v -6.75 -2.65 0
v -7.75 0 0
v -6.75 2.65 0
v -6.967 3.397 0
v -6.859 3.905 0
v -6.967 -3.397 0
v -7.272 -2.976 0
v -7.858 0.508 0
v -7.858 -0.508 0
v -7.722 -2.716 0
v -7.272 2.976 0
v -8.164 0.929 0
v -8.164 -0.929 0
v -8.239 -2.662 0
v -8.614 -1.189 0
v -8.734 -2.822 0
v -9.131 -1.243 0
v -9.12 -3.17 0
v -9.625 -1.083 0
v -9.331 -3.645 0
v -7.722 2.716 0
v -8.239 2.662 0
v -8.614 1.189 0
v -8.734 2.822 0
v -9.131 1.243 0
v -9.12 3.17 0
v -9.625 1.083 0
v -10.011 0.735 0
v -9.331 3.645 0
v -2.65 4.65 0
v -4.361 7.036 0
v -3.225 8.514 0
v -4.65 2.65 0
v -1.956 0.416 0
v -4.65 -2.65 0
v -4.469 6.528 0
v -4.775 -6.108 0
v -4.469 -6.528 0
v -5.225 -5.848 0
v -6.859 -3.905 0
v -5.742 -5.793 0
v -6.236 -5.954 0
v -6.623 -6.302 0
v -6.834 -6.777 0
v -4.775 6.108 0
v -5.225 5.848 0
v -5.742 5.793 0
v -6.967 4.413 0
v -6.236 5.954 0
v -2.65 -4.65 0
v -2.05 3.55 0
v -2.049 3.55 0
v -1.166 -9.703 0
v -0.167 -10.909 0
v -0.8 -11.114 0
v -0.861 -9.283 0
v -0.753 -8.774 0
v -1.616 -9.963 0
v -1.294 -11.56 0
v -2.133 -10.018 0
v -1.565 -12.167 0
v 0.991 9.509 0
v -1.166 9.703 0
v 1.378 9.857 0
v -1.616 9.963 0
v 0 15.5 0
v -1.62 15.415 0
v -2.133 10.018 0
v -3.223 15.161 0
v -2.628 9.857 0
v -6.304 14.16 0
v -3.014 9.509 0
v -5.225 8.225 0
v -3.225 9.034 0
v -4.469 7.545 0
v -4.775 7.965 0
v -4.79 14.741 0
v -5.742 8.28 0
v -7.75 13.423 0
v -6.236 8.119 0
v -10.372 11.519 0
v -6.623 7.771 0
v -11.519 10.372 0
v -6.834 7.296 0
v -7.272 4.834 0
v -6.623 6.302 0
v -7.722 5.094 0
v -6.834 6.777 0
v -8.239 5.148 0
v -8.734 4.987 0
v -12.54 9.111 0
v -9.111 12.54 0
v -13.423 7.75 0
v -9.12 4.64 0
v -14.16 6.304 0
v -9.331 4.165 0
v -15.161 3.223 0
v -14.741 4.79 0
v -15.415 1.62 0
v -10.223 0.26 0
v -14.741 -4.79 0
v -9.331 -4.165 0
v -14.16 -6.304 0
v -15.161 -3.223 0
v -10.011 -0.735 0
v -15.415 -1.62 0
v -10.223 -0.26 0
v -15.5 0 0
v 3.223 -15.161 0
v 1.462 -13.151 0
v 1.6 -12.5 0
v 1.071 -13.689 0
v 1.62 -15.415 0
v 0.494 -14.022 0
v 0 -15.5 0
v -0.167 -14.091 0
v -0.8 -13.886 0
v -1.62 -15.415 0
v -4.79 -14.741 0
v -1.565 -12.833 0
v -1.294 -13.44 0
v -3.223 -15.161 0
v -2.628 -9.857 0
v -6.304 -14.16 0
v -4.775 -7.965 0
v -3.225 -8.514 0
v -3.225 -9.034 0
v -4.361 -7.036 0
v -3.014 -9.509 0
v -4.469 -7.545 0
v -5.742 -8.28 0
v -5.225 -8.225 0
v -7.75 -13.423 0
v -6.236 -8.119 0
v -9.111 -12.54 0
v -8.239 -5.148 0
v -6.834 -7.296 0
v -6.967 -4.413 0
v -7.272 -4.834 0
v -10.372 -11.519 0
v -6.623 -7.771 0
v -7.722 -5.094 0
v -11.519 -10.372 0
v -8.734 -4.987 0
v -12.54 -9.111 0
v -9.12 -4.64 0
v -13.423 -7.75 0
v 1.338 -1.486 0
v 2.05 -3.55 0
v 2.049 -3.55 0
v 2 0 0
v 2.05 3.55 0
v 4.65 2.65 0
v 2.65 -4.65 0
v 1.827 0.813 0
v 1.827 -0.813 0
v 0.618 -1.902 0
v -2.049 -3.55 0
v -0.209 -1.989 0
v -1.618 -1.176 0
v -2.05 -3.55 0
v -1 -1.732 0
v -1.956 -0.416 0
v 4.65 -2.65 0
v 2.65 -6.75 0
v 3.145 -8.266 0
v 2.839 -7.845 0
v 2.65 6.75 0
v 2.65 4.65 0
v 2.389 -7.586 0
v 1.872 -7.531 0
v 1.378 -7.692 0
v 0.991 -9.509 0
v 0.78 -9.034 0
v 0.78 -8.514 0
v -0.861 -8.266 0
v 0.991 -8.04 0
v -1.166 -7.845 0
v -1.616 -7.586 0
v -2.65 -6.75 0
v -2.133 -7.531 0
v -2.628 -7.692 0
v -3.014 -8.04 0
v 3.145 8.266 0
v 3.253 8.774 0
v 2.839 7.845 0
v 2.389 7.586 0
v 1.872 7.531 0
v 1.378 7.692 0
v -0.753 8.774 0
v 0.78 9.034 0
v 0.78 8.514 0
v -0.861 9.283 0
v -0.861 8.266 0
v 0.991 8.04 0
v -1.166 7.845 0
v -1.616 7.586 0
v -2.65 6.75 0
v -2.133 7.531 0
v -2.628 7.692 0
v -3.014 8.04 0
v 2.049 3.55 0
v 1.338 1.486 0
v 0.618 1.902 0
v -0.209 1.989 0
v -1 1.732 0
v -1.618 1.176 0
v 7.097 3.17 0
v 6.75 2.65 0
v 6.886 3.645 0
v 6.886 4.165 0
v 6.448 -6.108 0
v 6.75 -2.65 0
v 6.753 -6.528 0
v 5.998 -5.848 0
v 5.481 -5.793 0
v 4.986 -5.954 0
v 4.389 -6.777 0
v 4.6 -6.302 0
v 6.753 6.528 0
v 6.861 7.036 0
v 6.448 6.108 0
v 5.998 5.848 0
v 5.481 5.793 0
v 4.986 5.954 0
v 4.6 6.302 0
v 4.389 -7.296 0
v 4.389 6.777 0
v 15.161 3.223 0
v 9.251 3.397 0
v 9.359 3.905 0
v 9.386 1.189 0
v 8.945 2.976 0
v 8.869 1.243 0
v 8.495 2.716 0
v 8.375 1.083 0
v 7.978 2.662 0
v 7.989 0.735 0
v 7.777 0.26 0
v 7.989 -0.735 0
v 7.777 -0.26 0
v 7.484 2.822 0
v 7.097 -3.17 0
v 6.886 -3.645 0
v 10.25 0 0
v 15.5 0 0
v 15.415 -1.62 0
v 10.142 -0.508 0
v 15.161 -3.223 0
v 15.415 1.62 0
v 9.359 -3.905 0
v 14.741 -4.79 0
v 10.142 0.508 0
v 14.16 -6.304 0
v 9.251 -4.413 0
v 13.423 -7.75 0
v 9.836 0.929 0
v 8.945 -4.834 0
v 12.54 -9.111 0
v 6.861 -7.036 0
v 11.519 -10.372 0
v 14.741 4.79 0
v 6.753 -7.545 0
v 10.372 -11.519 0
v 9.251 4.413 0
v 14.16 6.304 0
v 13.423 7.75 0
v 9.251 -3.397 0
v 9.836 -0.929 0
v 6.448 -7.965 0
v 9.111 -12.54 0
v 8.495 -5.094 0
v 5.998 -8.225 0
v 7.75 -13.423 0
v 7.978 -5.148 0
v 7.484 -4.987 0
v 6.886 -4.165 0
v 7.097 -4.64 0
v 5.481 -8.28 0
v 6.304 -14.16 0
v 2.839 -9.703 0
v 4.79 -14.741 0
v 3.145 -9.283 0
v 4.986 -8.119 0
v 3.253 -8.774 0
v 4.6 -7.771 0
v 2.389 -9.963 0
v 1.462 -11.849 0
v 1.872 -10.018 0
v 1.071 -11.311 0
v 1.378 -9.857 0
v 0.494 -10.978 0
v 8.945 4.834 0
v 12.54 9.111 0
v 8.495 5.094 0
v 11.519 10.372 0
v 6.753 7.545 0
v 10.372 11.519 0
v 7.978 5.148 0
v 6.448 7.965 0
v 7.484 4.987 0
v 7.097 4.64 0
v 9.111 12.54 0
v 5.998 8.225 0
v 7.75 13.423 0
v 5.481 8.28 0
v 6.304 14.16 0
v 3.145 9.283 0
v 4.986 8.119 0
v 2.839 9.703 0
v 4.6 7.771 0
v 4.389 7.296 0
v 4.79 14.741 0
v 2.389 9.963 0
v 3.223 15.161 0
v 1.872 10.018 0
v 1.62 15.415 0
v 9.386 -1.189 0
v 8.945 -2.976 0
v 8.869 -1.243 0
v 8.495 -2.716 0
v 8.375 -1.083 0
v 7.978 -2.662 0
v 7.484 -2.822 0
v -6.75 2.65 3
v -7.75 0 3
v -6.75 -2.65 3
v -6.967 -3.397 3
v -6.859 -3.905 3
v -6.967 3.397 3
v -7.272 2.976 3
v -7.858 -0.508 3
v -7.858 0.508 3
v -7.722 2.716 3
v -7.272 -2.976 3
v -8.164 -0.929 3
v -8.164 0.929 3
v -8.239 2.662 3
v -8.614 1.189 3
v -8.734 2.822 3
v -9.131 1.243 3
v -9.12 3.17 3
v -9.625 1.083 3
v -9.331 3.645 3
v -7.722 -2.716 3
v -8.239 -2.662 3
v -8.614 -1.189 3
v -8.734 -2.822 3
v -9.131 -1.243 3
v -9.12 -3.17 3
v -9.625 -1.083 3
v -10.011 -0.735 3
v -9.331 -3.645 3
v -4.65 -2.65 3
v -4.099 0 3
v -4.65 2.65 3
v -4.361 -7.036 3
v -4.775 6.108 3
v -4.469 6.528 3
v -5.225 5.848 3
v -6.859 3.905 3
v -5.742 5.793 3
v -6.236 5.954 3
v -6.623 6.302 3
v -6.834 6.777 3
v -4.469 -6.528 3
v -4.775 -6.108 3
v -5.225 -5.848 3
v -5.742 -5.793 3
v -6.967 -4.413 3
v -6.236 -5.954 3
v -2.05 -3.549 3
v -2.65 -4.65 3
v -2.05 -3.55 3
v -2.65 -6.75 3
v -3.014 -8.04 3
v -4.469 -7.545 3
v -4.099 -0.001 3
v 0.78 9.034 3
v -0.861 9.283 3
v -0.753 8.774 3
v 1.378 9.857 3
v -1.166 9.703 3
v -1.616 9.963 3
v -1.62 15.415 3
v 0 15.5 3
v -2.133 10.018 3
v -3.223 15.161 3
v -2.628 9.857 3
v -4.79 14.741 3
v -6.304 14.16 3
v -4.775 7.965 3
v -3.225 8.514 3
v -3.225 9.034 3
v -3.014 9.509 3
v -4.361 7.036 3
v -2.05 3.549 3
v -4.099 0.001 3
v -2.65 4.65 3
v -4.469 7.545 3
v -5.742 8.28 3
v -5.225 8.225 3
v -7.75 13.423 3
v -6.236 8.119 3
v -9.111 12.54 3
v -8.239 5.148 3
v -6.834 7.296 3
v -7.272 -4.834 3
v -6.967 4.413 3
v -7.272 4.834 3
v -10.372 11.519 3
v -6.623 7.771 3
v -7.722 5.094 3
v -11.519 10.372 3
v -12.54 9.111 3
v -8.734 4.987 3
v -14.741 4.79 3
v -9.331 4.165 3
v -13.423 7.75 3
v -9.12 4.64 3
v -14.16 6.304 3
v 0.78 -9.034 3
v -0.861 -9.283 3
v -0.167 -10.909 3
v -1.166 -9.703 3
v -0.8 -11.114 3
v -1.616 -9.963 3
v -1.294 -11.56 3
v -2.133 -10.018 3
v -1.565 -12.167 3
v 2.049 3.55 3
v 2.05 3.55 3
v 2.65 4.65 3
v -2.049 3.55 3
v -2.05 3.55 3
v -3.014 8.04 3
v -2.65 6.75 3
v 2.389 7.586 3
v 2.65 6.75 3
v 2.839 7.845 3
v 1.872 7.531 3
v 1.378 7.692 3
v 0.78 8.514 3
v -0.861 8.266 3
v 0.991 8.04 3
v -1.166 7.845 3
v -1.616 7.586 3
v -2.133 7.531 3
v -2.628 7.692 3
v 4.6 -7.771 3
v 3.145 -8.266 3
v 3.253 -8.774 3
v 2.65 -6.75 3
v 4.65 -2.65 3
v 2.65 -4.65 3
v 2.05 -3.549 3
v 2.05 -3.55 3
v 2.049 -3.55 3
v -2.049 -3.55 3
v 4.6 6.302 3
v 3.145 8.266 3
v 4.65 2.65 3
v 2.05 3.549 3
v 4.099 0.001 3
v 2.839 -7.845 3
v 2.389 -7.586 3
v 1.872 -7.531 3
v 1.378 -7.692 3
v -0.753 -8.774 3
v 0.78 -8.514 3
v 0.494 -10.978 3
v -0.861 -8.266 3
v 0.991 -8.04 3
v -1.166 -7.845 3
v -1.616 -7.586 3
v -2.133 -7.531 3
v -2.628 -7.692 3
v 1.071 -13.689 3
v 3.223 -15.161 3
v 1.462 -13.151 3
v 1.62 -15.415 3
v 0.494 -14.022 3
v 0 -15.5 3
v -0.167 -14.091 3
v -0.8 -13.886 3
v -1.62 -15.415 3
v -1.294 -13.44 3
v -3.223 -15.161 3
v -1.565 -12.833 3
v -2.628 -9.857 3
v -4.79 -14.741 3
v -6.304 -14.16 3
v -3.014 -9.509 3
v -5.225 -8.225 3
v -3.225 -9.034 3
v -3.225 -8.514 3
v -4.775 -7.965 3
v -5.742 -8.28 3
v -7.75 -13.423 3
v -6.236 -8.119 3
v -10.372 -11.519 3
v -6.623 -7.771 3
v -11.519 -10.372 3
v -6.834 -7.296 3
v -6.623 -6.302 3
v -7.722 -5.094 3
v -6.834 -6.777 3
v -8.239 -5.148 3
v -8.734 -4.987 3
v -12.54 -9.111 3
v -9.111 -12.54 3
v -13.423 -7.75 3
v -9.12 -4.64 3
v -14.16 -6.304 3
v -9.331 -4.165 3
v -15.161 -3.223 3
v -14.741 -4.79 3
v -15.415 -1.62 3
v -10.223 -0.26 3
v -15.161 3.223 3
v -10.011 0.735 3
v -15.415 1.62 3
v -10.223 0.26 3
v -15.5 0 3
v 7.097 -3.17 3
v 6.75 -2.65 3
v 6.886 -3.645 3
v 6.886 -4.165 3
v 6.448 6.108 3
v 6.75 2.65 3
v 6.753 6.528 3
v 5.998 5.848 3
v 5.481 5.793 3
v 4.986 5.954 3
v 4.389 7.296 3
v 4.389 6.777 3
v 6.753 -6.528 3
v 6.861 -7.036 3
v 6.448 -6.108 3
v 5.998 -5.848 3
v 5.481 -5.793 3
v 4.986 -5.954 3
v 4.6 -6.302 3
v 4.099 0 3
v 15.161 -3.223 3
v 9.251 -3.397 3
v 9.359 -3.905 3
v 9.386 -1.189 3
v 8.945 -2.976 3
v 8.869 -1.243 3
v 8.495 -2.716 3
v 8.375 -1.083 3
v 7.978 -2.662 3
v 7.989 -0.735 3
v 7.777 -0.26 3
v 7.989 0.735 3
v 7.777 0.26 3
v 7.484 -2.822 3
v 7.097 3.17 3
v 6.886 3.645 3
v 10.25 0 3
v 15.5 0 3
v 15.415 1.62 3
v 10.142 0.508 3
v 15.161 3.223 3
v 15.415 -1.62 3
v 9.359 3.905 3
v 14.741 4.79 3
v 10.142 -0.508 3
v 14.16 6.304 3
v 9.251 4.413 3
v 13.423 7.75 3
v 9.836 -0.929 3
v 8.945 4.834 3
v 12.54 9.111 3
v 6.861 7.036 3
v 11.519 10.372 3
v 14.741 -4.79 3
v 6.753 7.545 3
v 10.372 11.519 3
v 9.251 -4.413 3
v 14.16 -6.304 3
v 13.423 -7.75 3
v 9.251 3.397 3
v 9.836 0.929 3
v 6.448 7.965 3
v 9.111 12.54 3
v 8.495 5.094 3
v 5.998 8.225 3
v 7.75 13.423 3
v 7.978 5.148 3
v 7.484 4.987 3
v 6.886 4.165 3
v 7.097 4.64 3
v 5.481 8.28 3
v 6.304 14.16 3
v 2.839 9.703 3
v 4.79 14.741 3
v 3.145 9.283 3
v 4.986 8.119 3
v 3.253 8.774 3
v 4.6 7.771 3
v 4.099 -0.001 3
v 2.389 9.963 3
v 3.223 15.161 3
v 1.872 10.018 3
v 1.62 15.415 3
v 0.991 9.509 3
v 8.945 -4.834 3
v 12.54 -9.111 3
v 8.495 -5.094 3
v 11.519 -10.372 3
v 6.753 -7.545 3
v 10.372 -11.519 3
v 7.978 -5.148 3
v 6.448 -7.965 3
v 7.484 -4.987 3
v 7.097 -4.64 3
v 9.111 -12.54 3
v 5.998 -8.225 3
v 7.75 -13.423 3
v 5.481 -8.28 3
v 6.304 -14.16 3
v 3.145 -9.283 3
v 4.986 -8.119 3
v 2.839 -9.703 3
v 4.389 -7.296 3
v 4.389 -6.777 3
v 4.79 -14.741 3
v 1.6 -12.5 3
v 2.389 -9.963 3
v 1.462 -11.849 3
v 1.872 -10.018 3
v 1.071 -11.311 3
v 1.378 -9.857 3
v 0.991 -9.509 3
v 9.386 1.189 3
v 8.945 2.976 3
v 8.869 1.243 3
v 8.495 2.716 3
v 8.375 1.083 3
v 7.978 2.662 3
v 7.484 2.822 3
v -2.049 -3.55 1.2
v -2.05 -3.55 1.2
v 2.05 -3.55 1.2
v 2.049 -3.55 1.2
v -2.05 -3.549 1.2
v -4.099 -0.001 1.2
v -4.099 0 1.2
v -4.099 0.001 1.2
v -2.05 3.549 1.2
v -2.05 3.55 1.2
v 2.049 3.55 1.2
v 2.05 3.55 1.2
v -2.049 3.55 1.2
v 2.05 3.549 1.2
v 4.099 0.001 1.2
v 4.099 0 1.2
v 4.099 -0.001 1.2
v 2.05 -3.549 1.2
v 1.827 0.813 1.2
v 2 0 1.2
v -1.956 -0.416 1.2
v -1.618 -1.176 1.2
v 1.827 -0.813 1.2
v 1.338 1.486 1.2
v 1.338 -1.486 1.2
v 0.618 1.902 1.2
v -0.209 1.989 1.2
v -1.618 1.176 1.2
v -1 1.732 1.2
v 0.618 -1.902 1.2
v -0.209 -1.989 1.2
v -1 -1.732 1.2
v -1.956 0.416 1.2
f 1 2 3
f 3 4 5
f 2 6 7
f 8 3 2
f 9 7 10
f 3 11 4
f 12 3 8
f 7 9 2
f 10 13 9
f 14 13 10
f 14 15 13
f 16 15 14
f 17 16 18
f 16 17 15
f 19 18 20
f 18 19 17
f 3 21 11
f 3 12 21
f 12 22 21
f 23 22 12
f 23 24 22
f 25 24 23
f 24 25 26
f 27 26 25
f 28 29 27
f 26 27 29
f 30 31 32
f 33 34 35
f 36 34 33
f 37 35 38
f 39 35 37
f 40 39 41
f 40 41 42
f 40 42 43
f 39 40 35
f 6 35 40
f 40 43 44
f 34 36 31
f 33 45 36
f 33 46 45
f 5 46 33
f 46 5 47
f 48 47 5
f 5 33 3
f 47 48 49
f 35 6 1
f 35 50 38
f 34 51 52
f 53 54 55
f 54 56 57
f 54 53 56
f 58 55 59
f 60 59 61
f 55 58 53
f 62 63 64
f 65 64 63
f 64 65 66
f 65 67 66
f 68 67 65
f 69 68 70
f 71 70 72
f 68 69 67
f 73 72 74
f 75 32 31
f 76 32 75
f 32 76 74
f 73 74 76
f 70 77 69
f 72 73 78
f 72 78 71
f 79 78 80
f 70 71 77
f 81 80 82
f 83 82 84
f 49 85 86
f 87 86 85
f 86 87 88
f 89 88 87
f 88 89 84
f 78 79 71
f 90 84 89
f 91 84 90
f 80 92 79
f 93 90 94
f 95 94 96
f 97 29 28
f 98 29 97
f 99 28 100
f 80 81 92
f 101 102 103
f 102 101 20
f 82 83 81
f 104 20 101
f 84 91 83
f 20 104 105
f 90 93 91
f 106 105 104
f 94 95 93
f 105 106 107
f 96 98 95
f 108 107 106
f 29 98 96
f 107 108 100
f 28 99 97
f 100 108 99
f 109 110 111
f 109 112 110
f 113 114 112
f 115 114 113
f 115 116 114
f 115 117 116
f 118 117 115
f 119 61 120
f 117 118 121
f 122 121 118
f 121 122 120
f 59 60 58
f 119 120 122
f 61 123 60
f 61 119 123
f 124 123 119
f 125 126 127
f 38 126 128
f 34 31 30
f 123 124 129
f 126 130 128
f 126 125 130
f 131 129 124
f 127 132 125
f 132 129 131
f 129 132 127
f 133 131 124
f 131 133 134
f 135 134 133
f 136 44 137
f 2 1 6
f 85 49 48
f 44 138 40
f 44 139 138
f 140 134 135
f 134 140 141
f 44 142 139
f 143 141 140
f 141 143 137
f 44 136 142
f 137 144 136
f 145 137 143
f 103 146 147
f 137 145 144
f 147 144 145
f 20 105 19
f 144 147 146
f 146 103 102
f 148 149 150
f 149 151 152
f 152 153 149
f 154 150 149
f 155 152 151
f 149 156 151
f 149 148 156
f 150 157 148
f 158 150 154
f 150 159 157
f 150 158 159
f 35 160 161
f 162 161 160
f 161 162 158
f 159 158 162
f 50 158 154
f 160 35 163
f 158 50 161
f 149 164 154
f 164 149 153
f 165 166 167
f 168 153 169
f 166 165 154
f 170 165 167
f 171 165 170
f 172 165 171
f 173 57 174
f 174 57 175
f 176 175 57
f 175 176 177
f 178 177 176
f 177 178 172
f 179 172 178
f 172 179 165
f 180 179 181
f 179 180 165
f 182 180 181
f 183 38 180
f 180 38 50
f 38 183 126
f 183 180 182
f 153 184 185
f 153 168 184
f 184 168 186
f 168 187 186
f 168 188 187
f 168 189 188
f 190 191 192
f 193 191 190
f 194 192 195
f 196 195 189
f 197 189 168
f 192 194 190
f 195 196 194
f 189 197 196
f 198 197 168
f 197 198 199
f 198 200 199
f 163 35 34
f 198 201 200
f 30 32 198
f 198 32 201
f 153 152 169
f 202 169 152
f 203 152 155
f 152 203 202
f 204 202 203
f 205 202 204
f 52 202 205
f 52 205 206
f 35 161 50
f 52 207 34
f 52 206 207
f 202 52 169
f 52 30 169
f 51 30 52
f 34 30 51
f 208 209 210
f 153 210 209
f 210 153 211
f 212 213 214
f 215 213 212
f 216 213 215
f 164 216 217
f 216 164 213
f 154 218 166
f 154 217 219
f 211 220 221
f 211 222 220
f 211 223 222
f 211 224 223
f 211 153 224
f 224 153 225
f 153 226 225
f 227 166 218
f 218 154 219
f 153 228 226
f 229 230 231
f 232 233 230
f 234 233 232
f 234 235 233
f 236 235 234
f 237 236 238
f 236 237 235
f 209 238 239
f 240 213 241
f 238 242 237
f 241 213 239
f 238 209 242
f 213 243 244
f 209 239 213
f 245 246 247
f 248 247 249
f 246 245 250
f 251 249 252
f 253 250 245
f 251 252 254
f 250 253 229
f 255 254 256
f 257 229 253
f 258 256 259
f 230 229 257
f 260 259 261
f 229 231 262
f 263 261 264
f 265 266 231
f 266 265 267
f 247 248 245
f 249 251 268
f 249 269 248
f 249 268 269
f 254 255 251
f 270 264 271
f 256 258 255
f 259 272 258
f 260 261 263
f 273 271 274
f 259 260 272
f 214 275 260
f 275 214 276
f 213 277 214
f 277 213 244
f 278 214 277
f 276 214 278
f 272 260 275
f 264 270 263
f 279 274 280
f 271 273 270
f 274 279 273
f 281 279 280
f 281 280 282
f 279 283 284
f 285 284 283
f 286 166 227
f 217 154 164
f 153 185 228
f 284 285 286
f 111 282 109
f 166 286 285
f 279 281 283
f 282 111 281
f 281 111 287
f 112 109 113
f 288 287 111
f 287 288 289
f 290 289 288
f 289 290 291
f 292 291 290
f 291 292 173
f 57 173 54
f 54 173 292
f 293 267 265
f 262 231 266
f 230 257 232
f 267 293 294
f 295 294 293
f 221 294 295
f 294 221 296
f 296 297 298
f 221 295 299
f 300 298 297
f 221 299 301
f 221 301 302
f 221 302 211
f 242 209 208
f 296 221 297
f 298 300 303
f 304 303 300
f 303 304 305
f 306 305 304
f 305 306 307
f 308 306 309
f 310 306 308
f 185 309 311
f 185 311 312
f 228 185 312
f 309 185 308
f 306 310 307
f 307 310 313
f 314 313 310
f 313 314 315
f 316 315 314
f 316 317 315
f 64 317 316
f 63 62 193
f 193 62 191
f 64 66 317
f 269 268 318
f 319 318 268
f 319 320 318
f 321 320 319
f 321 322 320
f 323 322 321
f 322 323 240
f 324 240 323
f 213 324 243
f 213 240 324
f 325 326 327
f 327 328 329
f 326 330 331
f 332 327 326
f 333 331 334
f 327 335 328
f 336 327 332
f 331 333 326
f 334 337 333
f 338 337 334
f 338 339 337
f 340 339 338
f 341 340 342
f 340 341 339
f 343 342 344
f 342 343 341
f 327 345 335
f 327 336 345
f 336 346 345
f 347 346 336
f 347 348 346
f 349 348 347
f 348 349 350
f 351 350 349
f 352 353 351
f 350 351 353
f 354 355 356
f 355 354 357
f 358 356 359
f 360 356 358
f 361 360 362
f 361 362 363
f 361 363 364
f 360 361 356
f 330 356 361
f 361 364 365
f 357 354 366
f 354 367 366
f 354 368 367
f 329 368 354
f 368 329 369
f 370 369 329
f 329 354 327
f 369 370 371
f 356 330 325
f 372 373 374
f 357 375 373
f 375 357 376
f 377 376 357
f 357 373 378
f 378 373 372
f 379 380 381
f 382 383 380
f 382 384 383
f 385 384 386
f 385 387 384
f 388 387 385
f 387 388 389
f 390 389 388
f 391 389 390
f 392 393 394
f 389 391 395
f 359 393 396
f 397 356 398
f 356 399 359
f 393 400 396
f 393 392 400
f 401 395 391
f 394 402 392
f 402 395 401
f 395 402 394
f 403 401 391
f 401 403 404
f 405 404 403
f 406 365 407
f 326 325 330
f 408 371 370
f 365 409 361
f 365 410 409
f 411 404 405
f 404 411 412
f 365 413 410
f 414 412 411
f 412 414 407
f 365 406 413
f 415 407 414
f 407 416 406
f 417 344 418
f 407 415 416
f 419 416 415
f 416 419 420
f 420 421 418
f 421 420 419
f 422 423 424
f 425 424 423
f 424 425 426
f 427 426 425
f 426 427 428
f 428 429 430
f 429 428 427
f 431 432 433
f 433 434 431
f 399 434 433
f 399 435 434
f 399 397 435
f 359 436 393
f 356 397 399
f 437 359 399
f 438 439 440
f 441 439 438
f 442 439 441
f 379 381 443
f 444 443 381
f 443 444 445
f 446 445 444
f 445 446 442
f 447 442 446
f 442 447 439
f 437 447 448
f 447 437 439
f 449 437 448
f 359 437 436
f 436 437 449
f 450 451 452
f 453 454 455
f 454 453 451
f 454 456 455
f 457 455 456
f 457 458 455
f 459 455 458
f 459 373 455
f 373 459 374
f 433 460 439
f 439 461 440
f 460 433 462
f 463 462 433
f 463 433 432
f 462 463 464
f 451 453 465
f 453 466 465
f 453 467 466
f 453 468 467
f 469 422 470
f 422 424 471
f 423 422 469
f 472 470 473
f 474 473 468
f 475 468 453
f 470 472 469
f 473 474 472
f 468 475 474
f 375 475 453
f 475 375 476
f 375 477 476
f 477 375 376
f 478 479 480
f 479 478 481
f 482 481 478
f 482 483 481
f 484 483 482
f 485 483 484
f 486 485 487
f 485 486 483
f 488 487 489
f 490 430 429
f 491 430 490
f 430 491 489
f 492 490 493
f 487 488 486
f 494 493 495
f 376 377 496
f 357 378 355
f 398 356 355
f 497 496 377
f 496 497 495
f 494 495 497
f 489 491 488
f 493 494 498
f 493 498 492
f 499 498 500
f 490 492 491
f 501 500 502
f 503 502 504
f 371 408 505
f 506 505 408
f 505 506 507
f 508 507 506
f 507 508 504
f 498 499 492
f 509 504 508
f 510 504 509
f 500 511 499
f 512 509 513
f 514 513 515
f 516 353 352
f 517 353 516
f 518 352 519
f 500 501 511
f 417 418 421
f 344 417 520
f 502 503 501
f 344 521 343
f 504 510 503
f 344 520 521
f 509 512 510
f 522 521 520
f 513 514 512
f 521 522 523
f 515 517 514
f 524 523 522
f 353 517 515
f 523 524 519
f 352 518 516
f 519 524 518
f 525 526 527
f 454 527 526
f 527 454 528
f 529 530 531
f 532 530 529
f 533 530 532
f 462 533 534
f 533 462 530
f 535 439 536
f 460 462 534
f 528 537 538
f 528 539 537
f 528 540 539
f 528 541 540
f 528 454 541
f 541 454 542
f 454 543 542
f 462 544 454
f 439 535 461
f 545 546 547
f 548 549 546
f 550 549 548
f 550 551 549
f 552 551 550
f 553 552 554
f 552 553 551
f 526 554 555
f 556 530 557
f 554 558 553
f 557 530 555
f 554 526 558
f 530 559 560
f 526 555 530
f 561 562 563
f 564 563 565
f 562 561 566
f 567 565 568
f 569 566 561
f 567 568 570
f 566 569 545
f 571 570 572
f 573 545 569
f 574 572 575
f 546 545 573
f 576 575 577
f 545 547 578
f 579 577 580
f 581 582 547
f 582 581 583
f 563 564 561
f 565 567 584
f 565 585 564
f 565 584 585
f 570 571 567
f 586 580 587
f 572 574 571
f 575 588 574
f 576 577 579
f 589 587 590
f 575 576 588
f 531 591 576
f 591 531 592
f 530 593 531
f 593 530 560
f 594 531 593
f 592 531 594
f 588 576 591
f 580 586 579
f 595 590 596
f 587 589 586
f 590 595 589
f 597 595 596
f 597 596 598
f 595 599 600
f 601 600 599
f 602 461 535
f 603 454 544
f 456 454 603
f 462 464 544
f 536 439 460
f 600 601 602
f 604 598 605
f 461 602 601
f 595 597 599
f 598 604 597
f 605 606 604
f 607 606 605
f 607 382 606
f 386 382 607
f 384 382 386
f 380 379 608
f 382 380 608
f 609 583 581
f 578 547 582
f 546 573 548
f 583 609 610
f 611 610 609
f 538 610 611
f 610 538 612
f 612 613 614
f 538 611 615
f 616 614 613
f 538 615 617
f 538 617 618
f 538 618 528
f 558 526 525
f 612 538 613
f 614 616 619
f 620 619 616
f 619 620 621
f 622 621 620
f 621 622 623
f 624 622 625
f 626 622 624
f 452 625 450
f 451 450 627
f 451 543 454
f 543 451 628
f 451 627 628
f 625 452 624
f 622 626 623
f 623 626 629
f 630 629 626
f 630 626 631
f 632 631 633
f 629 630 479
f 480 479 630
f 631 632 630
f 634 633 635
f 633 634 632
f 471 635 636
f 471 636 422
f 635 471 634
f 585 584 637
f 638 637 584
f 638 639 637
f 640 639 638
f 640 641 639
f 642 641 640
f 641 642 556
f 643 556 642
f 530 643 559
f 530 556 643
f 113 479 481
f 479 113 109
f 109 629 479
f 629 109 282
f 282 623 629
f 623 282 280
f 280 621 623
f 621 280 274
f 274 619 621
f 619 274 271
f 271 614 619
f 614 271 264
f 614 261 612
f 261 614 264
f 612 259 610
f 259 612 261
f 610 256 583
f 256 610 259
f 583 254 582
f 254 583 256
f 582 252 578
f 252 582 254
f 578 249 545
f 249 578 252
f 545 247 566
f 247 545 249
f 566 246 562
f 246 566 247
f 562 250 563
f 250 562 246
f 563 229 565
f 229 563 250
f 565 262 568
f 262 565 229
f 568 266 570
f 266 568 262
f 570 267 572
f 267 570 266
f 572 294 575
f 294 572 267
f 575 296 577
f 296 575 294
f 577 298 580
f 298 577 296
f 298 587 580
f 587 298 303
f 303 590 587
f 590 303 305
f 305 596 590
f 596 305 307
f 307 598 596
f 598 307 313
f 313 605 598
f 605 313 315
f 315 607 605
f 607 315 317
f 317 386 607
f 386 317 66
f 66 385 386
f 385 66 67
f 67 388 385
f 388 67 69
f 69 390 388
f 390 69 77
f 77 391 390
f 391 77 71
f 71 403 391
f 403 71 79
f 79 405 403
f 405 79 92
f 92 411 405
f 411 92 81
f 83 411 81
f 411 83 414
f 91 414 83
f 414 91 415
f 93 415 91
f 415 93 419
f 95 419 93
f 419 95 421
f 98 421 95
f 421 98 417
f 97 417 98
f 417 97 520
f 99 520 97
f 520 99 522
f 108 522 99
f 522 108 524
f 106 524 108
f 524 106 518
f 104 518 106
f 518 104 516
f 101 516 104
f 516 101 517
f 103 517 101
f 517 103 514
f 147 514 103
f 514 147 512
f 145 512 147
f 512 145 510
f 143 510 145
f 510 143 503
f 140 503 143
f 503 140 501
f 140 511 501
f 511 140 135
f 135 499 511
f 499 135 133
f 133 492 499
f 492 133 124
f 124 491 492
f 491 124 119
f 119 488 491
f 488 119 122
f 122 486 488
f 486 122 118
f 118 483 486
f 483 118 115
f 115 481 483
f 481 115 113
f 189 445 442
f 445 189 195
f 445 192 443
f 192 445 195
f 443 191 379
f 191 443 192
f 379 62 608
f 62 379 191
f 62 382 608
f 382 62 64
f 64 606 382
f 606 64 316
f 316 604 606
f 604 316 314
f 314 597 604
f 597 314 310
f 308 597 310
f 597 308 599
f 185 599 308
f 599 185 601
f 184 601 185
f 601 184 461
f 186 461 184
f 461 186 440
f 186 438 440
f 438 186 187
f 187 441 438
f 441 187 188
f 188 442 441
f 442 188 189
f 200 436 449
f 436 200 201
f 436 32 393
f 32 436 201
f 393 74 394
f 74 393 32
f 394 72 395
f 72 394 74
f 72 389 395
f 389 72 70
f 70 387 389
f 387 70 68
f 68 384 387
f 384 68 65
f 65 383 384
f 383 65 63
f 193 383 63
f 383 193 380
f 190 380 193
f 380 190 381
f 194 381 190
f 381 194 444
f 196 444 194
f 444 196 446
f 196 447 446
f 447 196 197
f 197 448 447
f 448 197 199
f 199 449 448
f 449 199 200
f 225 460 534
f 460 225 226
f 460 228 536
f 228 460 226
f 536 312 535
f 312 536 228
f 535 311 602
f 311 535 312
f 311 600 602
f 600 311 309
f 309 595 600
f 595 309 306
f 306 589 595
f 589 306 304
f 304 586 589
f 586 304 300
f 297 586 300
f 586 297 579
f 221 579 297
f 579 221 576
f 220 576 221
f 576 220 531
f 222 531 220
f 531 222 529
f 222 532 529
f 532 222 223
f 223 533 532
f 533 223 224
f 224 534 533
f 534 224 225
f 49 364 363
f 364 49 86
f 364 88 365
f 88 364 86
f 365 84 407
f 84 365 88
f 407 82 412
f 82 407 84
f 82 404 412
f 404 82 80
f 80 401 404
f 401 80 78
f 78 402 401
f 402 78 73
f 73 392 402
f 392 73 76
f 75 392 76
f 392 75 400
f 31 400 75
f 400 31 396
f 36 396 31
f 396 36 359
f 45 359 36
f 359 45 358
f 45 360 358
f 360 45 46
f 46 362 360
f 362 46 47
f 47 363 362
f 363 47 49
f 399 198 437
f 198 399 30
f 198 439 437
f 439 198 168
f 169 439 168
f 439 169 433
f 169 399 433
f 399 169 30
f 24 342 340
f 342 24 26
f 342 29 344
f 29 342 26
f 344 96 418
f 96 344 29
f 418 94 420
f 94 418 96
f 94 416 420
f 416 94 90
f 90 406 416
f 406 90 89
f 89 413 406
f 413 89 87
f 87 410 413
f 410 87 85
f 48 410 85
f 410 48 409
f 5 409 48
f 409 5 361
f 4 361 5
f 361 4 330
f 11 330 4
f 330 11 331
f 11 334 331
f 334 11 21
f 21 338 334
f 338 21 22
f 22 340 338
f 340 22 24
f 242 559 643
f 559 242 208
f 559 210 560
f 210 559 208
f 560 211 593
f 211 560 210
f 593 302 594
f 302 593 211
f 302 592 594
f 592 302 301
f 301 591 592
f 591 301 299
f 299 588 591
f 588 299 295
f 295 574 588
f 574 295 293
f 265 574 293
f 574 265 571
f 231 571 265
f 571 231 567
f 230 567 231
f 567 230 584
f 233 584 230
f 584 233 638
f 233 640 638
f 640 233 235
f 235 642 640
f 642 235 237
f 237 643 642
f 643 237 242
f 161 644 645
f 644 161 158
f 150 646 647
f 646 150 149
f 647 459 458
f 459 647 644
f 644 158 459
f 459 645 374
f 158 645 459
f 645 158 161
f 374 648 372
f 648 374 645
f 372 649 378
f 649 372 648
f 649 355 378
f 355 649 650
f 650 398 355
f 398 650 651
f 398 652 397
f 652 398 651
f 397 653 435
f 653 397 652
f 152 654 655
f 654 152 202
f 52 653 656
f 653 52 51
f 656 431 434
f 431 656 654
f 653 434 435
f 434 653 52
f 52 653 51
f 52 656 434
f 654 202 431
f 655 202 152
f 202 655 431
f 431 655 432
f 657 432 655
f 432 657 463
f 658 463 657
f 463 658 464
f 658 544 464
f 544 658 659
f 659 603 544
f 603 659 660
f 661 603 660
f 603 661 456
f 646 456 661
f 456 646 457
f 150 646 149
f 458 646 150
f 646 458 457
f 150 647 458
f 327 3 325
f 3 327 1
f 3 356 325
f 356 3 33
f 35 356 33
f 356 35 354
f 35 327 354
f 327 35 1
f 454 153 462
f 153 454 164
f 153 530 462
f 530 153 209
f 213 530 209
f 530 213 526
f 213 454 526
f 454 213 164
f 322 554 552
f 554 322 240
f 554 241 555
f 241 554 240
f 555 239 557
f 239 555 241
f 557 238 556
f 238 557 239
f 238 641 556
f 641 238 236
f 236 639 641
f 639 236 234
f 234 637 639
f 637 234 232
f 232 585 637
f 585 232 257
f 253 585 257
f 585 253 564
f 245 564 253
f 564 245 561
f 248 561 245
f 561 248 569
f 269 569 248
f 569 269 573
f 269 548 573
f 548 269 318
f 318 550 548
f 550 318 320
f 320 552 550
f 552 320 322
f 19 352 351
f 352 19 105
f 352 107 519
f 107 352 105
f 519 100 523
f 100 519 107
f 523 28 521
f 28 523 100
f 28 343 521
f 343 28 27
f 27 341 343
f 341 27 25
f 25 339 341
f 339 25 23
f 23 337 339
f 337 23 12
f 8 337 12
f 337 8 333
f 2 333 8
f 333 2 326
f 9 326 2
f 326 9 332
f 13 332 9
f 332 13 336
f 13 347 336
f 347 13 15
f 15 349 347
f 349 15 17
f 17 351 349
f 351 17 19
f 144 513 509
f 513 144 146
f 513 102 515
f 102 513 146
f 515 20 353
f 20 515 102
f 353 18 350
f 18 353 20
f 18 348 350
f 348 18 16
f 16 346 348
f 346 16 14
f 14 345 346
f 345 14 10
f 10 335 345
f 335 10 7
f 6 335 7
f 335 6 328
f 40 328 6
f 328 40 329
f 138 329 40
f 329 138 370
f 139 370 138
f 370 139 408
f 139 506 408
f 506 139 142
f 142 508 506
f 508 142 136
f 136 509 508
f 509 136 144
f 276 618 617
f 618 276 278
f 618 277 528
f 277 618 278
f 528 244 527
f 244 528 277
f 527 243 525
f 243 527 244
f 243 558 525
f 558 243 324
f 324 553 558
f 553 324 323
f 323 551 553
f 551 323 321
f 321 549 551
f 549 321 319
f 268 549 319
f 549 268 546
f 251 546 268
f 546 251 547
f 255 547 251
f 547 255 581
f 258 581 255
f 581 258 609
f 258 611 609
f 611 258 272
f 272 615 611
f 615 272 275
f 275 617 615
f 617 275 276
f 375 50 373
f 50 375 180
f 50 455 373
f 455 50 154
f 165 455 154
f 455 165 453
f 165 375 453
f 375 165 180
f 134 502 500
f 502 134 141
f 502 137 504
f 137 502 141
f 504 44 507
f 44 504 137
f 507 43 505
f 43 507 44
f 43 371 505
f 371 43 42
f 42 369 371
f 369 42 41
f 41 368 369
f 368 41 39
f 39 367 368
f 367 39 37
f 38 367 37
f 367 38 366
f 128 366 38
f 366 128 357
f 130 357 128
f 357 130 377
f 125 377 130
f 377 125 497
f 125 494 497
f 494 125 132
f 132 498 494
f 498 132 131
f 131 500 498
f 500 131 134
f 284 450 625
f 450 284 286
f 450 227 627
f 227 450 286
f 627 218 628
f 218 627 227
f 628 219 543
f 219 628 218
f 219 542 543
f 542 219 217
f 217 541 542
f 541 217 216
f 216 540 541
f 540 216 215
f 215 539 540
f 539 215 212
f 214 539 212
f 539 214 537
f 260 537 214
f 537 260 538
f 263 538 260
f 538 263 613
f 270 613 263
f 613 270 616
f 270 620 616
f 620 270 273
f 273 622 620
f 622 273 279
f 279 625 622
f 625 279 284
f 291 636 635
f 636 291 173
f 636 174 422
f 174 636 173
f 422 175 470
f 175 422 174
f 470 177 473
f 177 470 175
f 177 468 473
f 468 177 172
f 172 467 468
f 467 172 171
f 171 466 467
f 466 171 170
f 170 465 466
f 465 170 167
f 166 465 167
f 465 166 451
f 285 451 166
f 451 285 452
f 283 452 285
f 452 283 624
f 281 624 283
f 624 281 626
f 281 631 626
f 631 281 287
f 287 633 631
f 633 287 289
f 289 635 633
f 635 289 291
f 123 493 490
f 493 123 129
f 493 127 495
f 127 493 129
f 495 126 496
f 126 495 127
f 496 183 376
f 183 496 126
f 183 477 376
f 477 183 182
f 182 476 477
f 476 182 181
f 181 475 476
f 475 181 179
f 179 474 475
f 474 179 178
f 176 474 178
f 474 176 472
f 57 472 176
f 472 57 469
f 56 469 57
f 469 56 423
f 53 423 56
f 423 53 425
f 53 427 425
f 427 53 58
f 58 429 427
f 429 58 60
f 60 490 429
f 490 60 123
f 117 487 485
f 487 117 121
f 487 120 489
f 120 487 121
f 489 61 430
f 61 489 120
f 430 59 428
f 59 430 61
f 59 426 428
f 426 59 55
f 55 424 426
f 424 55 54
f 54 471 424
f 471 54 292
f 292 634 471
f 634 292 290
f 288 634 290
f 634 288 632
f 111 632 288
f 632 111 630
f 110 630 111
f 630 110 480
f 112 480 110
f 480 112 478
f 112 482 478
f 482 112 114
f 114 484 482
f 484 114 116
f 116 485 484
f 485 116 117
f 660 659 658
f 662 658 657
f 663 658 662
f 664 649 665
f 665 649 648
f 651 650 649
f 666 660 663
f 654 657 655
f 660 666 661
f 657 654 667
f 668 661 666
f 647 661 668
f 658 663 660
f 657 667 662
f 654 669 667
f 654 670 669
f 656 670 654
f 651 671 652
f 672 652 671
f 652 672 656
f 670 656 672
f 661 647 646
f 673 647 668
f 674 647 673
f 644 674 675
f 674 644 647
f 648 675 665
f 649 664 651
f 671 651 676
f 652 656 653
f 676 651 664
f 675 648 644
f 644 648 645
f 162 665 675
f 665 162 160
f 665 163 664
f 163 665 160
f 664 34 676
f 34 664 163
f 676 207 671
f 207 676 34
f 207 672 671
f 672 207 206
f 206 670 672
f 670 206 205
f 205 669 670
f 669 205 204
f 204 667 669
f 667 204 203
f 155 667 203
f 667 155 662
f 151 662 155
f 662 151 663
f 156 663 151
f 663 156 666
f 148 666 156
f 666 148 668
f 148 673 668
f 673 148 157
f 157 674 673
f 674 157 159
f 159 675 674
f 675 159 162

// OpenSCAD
flap_hole_count = 14;
flap_hole_radius = 1.25;
inner_radius = 9;
outer_radius = 15.5;

module flap_holes() {
    for(i=[0:360/flap_hole_count:359]) {
        translate([inner_radius*cos(i), inner_radius*sin(i)])
            circle(r=flap_hole_radius, $fn=15);
    };
}

module spool_box_insert() {
    for(i=[0:90:359]) {
        translate([5.7*cos(i),5.7*sin(i)])
            rotate([0,0,i])
                square([2.1, 5.3], center=true);
    }
}

module screw_box() {
    difference() {
        square([9,7.1], center=true);
        
        circle(r=2,$fn=15);
    }
}

module spool_right_2d() {
    difference() {
        // Main circle
        circle(r=outer_radius, $fn=60);
        
        // Flap holes
        flap_holes();
        
        // Nut insert - axel
        for(i=[0:120:359]) {
            rotate([0,0,i])
                square([4.1,7.1],center = true);
        }
        
        // Spool Box Inserts
        spool_box_insert();
        
        // Home indicator magnet hole
        translate([0, -12.5])
            circle(r=1.6, $fn=15);
        
    }
}

module spool_right() {
    linear_extrude(3) {
        spool_right_2d();
    }
    
    linear_extrude(1.2) {
        screw_box();
    }
}

spool_right();

//use<axel-holder.scad>
//translate([0,0,3])
//    color("LightBlue", 1.0)
//        axel_holder();
